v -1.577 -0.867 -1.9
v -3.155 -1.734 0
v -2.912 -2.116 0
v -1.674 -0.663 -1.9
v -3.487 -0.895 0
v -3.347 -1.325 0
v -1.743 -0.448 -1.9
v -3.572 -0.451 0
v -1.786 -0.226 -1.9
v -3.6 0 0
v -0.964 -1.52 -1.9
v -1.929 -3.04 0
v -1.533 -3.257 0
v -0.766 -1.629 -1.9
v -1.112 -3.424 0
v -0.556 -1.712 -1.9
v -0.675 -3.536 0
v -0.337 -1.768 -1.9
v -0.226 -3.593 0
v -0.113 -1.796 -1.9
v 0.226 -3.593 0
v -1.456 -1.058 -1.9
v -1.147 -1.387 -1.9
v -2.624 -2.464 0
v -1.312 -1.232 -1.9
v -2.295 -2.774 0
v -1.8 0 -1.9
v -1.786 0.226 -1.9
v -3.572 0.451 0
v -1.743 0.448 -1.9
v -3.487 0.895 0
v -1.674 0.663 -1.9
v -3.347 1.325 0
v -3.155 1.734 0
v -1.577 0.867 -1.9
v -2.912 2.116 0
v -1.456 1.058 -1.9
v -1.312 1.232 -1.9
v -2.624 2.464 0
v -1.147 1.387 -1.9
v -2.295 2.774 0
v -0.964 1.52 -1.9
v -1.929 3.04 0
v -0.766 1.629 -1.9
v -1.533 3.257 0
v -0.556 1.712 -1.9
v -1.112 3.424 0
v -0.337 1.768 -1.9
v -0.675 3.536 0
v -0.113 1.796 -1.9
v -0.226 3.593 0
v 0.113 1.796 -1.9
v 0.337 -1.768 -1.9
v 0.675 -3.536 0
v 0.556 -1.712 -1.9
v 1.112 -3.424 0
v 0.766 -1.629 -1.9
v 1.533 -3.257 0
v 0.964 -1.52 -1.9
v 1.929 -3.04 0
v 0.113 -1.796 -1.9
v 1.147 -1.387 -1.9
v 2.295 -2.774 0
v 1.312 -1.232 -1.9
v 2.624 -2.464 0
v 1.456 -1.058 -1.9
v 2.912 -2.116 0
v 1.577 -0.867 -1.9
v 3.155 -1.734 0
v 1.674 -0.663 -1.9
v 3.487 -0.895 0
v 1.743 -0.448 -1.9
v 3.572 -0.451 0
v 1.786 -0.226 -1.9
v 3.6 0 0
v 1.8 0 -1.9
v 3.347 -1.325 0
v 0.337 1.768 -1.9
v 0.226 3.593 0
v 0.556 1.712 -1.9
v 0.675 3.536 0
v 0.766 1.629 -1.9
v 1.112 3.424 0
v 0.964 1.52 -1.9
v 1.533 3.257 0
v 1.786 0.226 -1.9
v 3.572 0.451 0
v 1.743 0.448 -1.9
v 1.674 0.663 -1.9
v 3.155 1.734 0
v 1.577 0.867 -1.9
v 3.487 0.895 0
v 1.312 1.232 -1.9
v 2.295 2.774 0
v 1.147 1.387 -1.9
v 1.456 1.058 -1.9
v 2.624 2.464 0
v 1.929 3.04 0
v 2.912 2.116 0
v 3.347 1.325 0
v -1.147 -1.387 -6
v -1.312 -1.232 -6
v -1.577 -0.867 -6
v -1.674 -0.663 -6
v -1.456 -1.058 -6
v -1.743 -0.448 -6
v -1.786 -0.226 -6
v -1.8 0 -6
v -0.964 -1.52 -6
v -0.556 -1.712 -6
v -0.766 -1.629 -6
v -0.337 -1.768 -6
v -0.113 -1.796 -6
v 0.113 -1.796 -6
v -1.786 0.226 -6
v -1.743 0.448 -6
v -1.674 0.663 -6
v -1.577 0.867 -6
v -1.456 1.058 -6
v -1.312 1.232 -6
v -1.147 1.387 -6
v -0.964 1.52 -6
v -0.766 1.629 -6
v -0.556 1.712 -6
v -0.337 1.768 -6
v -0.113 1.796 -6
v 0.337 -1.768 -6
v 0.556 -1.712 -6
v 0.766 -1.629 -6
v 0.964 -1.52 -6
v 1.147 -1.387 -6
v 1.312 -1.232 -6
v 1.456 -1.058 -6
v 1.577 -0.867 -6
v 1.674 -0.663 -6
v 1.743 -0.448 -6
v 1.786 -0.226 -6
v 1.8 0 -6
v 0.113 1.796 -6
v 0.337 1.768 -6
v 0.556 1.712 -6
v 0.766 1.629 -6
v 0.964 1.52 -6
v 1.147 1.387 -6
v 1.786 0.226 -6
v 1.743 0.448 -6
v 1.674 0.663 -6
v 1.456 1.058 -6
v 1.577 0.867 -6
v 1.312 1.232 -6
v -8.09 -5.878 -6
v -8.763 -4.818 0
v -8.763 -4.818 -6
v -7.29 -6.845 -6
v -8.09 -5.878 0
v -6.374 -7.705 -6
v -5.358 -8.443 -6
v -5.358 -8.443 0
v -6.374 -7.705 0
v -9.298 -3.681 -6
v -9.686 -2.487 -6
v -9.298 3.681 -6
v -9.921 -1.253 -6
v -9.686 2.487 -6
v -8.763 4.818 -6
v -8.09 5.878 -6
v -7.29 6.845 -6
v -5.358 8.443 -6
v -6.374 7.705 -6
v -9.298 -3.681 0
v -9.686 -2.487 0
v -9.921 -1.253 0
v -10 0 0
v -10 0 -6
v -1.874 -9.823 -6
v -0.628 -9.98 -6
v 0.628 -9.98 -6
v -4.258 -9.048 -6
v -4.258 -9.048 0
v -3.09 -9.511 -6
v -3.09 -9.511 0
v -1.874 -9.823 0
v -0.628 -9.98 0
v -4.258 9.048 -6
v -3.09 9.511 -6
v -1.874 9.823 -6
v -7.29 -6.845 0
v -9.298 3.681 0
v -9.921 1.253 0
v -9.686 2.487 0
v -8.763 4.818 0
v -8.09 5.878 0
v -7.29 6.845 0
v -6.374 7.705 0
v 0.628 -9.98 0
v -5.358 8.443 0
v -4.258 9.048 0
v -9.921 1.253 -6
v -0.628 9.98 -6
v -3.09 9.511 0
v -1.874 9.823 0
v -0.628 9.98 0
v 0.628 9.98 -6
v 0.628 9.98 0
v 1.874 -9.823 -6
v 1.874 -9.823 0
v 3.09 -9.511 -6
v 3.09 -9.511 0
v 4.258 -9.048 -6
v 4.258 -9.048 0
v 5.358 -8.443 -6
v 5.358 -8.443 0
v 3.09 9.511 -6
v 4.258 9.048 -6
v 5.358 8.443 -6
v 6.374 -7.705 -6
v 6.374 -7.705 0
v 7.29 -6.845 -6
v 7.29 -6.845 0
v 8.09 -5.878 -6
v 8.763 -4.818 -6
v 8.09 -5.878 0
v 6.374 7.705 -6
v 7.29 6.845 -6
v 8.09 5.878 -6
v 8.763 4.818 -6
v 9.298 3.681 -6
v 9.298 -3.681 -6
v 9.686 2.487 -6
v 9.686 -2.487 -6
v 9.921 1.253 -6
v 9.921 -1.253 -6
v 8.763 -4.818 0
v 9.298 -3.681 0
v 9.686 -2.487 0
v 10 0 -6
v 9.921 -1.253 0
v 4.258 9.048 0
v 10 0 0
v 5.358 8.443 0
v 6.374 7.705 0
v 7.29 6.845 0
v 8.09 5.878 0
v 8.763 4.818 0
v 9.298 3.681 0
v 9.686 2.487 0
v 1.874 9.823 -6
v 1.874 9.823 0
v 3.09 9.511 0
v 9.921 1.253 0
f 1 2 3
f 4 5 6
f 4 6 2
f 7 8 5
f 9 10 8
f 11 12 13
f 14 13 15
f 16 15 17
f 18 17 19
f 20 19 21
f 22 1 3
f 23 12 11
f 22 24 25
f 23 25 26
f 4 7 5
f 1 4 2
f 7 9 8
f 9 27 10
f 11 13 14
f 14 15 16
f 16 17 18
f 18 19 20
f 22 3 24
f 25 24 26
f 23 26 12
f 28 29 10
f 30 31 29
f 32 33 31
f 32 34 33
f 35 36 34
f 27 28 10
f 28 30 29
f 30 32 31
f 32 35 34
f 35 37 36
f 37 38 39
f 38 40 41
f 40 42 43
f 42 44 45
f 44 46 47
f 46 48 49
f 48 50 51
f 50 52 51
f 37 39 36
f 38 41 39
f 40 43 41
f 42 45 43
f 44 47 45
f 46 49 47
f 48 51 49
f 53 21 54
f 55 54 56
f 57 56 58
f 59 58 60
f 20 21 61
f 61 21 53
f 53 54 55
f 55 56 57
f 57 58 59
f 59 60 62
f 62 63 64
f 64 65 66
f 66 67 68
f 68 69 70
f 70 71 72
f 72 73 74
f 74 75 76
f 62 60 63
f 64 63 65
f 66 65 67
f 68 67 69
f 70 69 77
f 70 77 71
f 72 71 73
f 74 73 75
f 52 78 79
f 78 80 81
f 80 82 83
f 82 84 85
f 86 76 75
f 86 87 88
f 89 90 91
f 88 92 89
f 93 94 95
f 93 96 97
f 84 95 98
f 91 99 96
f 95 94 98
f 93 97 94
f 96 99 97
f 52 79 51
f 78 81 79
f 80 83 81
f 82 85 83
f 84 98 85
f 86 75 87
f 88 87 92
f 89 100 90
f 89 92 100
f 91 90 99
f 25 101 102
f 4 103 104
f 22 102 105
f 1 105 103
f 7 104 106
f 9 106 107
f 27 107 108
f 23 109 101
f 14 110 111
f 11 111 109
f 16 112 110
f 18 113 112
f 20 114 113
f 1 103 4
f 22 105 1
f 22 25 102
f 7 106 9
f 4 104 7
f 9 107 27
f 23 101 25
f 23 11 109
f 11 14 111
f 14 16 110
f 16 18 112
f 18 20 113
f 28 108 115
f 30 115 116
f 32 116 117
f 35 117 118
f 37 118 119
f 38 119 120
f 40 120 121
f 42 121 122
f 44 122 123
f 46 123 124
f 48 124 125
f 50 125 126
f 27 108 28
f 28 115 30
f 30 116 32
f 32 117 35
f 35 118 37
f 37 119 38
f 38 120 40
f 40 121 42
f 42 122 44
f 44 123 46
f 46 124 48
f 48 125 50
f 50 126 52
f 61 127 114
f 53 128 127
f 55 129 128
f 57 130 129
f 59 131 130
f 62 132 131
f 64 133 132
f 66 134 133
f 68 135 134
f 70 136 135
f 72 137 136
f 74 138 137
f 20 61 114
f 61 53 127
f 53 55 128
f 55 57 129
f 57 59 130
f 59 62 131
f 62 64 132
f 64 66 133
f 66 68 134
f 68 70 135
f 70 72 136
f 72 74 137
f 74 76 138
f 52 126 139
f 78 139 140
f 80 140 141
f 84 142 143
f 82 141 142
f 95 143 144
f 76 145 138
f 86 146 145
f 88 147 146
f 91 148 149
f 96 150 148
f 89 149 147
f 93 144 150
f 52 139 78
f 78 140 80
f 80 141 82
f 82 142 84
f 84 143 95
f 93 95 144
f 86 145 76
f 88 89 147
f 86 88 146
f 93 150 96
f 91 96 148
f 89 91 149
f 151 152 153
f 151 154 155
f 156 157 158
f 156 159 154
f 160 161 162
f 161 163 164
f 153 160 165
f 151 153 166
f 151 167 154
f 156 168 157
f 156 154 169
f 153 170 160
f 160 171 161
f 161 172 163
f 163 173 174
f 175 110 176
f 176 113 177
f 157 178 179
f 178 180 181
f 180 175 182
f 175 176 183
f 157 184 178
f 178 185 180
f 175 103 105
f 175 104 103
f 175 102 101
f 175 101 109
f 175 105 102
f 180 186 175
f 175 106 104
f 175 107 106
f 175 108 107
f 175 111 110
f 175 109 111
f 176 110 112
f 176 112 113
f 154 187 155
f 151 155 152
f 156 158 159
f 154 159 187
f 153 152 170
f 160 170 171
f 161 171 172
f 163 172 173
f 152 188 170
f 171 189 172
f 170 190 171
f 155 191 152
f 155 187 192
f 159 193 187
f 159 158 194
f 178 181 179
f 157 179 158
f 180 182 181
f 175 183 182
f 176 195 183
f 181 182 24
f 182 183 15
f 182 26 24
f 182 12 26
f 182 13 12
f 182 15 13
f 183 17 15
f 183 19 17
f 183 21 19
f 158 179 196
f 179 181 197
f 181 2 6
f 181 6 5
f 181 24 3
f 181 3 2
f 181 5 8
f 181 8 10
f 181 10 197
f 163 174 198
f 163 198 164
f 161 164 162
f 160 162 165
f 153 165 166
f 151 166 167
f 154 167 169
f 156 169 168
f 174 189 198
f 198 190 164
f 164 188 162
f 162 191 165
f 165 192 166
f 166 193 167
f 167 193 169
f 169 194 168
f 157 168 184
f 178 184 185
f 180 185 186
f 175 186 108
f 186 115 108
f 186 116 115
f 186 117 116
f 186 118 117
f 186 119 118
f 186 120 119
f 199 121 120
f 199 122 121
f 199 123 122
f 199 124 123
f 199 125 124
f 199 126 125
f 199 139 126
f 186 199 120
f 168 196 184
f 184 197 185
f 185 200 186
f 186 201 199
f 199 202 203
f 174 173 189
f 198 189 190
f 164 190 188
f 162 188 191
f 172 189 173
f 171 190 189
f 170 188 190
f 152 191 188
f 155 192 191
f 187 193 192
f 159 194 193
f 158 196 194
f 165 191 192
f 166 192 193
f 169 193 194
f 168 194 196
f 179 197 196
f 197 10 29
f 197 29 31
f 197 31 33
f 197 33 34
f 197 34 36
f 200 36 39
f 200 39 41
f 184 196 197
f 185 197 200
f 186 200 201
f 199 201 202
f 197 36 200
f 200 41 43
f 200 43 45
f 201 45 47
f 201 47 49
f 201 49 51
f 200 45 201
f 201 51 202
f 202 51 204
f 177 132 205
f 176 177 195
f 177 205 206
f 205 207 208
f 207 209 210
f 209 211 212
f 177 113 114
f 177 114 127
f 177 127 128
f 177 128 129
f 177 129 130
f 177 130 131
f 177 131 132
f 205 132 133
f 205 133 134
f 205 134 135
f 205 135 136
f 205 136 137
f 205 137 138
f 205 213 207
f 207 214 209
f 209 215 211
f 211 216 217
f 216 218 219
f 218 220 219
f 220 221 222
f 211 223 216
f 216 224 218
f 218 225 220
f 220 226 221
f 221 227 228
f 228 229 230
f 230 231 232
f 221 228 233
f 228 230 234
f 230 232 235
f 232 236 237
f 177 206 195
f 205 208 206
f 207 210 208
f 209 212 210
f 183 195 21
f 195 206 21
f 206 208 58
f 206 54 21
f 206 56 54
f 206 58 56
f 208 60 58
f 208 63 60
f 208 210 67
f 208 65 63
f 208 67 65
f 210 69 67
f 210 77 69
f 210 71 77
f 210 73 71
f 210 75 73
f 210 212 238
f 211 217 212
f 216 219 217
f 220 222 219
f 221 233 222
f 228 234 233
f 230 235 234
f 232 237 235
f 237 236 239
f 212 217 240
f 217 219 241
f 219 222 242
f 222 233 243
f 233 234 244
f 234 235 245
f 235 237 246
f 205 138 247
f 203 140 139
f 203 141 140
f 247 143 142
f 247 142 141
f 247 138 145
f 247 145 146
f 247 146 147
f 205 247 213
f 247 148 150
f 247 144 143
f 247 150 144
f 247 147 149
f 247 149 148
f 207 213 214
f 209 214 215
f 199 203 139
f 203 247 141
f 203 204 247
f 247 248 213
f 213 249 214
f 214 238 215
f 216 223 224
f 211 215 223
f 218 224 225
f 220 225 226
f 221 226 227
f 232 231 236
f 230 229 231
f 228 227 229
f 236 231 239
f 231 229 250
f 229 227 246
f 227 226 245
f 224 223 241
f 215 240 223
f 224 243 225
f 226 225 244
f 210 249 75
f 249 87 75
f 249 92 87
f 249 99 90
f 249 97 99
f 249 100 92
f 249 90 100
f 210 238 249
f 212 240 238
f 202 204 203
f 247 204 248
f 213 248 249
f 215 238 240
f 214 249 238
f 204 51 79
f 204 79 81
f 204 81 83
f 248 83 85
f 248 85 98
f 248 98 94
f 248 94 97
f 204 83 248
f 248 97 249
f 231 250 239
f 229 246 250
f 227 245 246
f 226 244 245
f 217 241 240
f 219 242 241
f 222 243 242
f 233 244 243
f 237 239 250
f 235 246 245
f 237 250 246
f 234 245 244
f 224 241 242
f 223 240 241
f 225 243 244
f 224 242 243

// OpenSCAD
$fn = 50;

difference() {
	union() {
		translate(v = [0, 0, -6.0]) {
			cylinder(h = 6, r = 10.0);
		}
	}
	union() {
		translate(v = [0, 0, 0]) {
			rotate(a = [0, 0, 0]) {
				difference() {
					union() {
						translate(v = [0, 0, -9.0]) {
							cylinder(h = 9, r = 1.5);
						}
						translate(v = [0, 0, -1.9]) {
							cylinder(h = 1.9, r1 = 1.8, r2 = 3.6);
						}
						translate(v = [0, 0, -9.0]) {
							cylinder(h = 9, r = 1.8);
						}
						translate(v = [0, 0, -9.0]) {
							cylinder(h = 9, r = 1.5);
						}
					}
					union();
				}
			}
		}
	}
}
